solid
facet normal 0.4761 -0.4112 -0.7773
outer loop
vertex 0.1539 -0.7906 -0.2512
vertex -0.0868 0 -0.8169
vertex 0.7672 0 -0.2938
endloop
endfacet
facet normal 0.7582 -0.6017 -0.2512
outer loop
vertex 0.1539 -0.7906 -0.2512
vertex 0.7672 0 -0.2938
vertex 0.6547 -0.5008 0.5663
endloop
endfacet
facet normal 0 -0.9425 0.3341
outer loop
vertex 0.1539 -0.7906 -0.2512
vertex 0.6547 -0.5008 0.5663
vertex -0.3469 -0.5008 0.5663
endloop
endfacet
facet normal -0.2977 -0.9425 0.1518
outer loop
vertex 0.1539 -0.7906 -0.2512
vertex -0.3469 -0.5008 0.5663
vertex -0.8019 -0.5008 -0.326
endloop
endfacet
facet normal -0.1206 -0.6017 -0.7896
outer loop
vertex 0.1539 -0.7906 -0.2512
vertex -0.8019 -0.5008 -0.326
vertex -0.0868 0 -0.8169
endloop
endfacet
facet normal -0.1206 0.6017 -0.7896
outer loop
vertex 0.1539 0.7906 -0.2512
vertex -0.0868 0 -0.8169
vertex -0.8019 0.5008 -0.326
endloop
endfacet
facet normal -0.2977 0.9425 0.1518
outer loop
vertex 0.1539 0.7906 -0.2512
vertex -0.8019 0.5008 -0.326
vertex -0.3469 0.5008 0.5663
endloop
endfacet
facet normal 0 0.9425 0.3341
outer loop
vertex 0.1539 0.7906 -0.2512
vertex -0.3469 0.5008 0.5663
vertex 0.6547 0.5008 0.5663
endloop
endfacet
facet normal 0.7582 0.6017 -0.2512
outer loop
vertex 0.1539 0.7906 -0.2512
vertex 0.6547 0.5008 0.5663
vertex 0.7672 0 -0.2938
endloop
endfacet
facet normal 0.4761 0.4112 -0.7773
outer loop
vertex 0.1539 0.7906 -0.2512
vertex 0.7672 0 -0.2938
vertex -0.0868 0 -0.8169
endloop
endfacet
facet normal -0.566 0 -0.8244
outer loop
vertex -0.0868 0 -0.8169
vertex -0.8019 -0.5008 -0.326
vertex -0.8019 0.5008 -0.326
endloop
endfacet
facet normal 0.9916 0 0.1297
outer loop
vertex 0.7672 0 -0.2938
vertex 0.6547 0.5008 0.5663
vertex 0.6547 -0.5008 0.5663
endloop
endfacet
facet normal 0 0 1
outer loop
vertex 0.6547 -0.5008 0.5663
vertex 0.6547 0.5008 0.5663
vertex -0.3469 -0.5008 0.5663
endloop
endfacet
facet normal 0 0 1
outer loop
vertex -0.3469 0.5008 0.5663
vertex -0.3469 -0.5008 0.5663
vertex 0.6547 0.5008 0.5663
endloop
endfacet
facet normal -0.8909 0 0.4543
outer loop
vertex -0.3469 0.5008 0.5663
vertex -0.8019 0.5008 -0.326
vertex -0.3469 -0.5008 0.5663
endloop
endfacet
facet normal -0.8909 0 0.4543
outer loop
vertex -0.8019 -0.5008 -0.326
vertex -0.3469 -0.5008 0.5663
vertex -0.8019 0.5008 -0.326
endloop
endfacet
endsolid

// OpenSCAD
polyhedron( points = [[0.153891454132858, -0.790639613816991, -0.251221949835945], [0.153891454203852, 0.790639345999251, -0.251221949777511], [-0.0868323737207965, 1.20549250797964e-06, -0.816918585789469], [0.767204762157606, -1.33992842913444e-07, -0.293760750242245], [-0.346876343989224, -0.500767932109872, 0.566261732630942], [-0.346876343944258, 0.500767664172298, 0.566261732630942], [0.654659252203019, -0.500767932109872, 0.566261732630942], [0.654659252247988, 0.50076766408237, 0.566261732630942], [-0.801860556668005, -0.500767931954549, -0.3259618474393], [-0.80186055662304, 0.500767664237699, -0.3259618474393]], faces = [[0, 2, 3], [0, 3, 6], [0, 6, 4], [0, 4, 8], [0, 8, 2], [1, 2, 9], [1, 9, 5], [1, 5, 7], [1, 7, 3], [1, 3, 2], [2, 8, 9], [3, 7, 6], [4, 6, 7, 5], [4, 5, 9, 8]]);
